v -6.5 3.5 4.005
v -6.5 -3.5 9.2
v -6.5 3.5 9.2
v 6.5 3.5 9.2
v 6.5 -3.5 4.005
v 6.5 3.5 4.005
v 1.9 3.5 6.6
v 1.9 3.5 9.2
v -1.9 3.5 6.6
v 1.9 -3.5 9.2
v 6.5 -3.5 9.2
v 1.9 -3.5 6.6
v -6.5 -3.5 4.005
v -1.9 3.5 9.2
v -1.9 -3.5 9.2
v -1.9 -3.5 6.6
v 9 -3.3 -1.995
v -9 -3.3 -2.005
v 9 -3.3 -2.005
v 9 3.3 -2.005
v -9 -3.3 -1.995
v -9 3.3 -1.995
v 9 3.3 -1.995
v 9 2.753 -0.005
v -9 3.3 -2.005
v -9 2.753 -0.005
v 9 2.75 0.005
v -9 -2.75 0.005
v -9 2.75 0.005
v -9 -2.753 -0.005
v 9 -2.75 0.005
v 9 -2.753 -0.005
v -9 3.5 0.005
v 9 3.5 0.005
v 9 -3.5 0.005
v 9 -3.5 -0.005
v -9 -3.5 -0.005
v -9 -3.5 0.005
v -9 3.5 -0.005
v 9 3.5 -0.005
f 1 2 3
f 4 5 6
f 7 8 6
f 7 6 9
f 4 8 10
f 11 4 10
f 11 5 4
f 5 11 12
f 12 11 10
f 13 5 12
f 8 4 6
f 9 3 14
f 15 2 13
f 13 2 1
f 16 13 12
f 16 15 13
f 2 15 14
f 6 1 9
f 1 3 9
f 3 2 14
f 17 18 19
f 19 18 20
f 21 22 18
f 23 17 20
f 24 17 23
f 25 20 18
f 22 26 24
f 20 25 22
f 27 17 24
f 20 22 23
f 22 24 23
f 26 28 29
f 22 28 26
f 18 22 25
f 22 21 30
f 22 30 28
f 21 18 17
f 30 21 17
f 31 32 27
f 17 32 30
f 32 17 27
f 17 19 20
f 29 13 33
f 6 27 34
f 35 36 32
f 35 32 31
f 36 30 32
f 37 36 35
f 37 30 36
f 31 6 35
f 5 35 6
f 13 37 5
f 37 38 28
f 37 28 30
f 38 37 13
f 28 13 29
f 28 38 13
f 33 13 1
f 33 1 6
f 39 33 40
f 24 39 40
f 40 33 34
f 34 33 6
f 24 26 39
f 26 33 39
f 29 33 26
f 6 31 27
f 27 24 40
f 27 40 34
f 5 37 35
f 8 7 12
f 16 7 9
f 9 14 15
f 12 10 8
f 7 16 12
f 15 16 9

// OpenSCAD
difference() {
	union() {
		//main body
		translate([0, 0, 9.2 / 2]) cube([13, 7, 9.2], center = true);
		//slide footprint
		hull() {
			cube([18, 5.5, 0.01], center = true);
			translate([0, 0, -2]) cube([18, 6.6, 0.01], center = true);
		}
		//angle on the side
		hull() {
			cube([18, 7, 0.01], center = true);
			translate([0, 0, 4]) cube([13, 7, 0.01], center = true);
		}
	}
	//cut out for alignment
	translate([0, 0, 8.5]) cube([3.8, 8, 3.8], center = true);
}
